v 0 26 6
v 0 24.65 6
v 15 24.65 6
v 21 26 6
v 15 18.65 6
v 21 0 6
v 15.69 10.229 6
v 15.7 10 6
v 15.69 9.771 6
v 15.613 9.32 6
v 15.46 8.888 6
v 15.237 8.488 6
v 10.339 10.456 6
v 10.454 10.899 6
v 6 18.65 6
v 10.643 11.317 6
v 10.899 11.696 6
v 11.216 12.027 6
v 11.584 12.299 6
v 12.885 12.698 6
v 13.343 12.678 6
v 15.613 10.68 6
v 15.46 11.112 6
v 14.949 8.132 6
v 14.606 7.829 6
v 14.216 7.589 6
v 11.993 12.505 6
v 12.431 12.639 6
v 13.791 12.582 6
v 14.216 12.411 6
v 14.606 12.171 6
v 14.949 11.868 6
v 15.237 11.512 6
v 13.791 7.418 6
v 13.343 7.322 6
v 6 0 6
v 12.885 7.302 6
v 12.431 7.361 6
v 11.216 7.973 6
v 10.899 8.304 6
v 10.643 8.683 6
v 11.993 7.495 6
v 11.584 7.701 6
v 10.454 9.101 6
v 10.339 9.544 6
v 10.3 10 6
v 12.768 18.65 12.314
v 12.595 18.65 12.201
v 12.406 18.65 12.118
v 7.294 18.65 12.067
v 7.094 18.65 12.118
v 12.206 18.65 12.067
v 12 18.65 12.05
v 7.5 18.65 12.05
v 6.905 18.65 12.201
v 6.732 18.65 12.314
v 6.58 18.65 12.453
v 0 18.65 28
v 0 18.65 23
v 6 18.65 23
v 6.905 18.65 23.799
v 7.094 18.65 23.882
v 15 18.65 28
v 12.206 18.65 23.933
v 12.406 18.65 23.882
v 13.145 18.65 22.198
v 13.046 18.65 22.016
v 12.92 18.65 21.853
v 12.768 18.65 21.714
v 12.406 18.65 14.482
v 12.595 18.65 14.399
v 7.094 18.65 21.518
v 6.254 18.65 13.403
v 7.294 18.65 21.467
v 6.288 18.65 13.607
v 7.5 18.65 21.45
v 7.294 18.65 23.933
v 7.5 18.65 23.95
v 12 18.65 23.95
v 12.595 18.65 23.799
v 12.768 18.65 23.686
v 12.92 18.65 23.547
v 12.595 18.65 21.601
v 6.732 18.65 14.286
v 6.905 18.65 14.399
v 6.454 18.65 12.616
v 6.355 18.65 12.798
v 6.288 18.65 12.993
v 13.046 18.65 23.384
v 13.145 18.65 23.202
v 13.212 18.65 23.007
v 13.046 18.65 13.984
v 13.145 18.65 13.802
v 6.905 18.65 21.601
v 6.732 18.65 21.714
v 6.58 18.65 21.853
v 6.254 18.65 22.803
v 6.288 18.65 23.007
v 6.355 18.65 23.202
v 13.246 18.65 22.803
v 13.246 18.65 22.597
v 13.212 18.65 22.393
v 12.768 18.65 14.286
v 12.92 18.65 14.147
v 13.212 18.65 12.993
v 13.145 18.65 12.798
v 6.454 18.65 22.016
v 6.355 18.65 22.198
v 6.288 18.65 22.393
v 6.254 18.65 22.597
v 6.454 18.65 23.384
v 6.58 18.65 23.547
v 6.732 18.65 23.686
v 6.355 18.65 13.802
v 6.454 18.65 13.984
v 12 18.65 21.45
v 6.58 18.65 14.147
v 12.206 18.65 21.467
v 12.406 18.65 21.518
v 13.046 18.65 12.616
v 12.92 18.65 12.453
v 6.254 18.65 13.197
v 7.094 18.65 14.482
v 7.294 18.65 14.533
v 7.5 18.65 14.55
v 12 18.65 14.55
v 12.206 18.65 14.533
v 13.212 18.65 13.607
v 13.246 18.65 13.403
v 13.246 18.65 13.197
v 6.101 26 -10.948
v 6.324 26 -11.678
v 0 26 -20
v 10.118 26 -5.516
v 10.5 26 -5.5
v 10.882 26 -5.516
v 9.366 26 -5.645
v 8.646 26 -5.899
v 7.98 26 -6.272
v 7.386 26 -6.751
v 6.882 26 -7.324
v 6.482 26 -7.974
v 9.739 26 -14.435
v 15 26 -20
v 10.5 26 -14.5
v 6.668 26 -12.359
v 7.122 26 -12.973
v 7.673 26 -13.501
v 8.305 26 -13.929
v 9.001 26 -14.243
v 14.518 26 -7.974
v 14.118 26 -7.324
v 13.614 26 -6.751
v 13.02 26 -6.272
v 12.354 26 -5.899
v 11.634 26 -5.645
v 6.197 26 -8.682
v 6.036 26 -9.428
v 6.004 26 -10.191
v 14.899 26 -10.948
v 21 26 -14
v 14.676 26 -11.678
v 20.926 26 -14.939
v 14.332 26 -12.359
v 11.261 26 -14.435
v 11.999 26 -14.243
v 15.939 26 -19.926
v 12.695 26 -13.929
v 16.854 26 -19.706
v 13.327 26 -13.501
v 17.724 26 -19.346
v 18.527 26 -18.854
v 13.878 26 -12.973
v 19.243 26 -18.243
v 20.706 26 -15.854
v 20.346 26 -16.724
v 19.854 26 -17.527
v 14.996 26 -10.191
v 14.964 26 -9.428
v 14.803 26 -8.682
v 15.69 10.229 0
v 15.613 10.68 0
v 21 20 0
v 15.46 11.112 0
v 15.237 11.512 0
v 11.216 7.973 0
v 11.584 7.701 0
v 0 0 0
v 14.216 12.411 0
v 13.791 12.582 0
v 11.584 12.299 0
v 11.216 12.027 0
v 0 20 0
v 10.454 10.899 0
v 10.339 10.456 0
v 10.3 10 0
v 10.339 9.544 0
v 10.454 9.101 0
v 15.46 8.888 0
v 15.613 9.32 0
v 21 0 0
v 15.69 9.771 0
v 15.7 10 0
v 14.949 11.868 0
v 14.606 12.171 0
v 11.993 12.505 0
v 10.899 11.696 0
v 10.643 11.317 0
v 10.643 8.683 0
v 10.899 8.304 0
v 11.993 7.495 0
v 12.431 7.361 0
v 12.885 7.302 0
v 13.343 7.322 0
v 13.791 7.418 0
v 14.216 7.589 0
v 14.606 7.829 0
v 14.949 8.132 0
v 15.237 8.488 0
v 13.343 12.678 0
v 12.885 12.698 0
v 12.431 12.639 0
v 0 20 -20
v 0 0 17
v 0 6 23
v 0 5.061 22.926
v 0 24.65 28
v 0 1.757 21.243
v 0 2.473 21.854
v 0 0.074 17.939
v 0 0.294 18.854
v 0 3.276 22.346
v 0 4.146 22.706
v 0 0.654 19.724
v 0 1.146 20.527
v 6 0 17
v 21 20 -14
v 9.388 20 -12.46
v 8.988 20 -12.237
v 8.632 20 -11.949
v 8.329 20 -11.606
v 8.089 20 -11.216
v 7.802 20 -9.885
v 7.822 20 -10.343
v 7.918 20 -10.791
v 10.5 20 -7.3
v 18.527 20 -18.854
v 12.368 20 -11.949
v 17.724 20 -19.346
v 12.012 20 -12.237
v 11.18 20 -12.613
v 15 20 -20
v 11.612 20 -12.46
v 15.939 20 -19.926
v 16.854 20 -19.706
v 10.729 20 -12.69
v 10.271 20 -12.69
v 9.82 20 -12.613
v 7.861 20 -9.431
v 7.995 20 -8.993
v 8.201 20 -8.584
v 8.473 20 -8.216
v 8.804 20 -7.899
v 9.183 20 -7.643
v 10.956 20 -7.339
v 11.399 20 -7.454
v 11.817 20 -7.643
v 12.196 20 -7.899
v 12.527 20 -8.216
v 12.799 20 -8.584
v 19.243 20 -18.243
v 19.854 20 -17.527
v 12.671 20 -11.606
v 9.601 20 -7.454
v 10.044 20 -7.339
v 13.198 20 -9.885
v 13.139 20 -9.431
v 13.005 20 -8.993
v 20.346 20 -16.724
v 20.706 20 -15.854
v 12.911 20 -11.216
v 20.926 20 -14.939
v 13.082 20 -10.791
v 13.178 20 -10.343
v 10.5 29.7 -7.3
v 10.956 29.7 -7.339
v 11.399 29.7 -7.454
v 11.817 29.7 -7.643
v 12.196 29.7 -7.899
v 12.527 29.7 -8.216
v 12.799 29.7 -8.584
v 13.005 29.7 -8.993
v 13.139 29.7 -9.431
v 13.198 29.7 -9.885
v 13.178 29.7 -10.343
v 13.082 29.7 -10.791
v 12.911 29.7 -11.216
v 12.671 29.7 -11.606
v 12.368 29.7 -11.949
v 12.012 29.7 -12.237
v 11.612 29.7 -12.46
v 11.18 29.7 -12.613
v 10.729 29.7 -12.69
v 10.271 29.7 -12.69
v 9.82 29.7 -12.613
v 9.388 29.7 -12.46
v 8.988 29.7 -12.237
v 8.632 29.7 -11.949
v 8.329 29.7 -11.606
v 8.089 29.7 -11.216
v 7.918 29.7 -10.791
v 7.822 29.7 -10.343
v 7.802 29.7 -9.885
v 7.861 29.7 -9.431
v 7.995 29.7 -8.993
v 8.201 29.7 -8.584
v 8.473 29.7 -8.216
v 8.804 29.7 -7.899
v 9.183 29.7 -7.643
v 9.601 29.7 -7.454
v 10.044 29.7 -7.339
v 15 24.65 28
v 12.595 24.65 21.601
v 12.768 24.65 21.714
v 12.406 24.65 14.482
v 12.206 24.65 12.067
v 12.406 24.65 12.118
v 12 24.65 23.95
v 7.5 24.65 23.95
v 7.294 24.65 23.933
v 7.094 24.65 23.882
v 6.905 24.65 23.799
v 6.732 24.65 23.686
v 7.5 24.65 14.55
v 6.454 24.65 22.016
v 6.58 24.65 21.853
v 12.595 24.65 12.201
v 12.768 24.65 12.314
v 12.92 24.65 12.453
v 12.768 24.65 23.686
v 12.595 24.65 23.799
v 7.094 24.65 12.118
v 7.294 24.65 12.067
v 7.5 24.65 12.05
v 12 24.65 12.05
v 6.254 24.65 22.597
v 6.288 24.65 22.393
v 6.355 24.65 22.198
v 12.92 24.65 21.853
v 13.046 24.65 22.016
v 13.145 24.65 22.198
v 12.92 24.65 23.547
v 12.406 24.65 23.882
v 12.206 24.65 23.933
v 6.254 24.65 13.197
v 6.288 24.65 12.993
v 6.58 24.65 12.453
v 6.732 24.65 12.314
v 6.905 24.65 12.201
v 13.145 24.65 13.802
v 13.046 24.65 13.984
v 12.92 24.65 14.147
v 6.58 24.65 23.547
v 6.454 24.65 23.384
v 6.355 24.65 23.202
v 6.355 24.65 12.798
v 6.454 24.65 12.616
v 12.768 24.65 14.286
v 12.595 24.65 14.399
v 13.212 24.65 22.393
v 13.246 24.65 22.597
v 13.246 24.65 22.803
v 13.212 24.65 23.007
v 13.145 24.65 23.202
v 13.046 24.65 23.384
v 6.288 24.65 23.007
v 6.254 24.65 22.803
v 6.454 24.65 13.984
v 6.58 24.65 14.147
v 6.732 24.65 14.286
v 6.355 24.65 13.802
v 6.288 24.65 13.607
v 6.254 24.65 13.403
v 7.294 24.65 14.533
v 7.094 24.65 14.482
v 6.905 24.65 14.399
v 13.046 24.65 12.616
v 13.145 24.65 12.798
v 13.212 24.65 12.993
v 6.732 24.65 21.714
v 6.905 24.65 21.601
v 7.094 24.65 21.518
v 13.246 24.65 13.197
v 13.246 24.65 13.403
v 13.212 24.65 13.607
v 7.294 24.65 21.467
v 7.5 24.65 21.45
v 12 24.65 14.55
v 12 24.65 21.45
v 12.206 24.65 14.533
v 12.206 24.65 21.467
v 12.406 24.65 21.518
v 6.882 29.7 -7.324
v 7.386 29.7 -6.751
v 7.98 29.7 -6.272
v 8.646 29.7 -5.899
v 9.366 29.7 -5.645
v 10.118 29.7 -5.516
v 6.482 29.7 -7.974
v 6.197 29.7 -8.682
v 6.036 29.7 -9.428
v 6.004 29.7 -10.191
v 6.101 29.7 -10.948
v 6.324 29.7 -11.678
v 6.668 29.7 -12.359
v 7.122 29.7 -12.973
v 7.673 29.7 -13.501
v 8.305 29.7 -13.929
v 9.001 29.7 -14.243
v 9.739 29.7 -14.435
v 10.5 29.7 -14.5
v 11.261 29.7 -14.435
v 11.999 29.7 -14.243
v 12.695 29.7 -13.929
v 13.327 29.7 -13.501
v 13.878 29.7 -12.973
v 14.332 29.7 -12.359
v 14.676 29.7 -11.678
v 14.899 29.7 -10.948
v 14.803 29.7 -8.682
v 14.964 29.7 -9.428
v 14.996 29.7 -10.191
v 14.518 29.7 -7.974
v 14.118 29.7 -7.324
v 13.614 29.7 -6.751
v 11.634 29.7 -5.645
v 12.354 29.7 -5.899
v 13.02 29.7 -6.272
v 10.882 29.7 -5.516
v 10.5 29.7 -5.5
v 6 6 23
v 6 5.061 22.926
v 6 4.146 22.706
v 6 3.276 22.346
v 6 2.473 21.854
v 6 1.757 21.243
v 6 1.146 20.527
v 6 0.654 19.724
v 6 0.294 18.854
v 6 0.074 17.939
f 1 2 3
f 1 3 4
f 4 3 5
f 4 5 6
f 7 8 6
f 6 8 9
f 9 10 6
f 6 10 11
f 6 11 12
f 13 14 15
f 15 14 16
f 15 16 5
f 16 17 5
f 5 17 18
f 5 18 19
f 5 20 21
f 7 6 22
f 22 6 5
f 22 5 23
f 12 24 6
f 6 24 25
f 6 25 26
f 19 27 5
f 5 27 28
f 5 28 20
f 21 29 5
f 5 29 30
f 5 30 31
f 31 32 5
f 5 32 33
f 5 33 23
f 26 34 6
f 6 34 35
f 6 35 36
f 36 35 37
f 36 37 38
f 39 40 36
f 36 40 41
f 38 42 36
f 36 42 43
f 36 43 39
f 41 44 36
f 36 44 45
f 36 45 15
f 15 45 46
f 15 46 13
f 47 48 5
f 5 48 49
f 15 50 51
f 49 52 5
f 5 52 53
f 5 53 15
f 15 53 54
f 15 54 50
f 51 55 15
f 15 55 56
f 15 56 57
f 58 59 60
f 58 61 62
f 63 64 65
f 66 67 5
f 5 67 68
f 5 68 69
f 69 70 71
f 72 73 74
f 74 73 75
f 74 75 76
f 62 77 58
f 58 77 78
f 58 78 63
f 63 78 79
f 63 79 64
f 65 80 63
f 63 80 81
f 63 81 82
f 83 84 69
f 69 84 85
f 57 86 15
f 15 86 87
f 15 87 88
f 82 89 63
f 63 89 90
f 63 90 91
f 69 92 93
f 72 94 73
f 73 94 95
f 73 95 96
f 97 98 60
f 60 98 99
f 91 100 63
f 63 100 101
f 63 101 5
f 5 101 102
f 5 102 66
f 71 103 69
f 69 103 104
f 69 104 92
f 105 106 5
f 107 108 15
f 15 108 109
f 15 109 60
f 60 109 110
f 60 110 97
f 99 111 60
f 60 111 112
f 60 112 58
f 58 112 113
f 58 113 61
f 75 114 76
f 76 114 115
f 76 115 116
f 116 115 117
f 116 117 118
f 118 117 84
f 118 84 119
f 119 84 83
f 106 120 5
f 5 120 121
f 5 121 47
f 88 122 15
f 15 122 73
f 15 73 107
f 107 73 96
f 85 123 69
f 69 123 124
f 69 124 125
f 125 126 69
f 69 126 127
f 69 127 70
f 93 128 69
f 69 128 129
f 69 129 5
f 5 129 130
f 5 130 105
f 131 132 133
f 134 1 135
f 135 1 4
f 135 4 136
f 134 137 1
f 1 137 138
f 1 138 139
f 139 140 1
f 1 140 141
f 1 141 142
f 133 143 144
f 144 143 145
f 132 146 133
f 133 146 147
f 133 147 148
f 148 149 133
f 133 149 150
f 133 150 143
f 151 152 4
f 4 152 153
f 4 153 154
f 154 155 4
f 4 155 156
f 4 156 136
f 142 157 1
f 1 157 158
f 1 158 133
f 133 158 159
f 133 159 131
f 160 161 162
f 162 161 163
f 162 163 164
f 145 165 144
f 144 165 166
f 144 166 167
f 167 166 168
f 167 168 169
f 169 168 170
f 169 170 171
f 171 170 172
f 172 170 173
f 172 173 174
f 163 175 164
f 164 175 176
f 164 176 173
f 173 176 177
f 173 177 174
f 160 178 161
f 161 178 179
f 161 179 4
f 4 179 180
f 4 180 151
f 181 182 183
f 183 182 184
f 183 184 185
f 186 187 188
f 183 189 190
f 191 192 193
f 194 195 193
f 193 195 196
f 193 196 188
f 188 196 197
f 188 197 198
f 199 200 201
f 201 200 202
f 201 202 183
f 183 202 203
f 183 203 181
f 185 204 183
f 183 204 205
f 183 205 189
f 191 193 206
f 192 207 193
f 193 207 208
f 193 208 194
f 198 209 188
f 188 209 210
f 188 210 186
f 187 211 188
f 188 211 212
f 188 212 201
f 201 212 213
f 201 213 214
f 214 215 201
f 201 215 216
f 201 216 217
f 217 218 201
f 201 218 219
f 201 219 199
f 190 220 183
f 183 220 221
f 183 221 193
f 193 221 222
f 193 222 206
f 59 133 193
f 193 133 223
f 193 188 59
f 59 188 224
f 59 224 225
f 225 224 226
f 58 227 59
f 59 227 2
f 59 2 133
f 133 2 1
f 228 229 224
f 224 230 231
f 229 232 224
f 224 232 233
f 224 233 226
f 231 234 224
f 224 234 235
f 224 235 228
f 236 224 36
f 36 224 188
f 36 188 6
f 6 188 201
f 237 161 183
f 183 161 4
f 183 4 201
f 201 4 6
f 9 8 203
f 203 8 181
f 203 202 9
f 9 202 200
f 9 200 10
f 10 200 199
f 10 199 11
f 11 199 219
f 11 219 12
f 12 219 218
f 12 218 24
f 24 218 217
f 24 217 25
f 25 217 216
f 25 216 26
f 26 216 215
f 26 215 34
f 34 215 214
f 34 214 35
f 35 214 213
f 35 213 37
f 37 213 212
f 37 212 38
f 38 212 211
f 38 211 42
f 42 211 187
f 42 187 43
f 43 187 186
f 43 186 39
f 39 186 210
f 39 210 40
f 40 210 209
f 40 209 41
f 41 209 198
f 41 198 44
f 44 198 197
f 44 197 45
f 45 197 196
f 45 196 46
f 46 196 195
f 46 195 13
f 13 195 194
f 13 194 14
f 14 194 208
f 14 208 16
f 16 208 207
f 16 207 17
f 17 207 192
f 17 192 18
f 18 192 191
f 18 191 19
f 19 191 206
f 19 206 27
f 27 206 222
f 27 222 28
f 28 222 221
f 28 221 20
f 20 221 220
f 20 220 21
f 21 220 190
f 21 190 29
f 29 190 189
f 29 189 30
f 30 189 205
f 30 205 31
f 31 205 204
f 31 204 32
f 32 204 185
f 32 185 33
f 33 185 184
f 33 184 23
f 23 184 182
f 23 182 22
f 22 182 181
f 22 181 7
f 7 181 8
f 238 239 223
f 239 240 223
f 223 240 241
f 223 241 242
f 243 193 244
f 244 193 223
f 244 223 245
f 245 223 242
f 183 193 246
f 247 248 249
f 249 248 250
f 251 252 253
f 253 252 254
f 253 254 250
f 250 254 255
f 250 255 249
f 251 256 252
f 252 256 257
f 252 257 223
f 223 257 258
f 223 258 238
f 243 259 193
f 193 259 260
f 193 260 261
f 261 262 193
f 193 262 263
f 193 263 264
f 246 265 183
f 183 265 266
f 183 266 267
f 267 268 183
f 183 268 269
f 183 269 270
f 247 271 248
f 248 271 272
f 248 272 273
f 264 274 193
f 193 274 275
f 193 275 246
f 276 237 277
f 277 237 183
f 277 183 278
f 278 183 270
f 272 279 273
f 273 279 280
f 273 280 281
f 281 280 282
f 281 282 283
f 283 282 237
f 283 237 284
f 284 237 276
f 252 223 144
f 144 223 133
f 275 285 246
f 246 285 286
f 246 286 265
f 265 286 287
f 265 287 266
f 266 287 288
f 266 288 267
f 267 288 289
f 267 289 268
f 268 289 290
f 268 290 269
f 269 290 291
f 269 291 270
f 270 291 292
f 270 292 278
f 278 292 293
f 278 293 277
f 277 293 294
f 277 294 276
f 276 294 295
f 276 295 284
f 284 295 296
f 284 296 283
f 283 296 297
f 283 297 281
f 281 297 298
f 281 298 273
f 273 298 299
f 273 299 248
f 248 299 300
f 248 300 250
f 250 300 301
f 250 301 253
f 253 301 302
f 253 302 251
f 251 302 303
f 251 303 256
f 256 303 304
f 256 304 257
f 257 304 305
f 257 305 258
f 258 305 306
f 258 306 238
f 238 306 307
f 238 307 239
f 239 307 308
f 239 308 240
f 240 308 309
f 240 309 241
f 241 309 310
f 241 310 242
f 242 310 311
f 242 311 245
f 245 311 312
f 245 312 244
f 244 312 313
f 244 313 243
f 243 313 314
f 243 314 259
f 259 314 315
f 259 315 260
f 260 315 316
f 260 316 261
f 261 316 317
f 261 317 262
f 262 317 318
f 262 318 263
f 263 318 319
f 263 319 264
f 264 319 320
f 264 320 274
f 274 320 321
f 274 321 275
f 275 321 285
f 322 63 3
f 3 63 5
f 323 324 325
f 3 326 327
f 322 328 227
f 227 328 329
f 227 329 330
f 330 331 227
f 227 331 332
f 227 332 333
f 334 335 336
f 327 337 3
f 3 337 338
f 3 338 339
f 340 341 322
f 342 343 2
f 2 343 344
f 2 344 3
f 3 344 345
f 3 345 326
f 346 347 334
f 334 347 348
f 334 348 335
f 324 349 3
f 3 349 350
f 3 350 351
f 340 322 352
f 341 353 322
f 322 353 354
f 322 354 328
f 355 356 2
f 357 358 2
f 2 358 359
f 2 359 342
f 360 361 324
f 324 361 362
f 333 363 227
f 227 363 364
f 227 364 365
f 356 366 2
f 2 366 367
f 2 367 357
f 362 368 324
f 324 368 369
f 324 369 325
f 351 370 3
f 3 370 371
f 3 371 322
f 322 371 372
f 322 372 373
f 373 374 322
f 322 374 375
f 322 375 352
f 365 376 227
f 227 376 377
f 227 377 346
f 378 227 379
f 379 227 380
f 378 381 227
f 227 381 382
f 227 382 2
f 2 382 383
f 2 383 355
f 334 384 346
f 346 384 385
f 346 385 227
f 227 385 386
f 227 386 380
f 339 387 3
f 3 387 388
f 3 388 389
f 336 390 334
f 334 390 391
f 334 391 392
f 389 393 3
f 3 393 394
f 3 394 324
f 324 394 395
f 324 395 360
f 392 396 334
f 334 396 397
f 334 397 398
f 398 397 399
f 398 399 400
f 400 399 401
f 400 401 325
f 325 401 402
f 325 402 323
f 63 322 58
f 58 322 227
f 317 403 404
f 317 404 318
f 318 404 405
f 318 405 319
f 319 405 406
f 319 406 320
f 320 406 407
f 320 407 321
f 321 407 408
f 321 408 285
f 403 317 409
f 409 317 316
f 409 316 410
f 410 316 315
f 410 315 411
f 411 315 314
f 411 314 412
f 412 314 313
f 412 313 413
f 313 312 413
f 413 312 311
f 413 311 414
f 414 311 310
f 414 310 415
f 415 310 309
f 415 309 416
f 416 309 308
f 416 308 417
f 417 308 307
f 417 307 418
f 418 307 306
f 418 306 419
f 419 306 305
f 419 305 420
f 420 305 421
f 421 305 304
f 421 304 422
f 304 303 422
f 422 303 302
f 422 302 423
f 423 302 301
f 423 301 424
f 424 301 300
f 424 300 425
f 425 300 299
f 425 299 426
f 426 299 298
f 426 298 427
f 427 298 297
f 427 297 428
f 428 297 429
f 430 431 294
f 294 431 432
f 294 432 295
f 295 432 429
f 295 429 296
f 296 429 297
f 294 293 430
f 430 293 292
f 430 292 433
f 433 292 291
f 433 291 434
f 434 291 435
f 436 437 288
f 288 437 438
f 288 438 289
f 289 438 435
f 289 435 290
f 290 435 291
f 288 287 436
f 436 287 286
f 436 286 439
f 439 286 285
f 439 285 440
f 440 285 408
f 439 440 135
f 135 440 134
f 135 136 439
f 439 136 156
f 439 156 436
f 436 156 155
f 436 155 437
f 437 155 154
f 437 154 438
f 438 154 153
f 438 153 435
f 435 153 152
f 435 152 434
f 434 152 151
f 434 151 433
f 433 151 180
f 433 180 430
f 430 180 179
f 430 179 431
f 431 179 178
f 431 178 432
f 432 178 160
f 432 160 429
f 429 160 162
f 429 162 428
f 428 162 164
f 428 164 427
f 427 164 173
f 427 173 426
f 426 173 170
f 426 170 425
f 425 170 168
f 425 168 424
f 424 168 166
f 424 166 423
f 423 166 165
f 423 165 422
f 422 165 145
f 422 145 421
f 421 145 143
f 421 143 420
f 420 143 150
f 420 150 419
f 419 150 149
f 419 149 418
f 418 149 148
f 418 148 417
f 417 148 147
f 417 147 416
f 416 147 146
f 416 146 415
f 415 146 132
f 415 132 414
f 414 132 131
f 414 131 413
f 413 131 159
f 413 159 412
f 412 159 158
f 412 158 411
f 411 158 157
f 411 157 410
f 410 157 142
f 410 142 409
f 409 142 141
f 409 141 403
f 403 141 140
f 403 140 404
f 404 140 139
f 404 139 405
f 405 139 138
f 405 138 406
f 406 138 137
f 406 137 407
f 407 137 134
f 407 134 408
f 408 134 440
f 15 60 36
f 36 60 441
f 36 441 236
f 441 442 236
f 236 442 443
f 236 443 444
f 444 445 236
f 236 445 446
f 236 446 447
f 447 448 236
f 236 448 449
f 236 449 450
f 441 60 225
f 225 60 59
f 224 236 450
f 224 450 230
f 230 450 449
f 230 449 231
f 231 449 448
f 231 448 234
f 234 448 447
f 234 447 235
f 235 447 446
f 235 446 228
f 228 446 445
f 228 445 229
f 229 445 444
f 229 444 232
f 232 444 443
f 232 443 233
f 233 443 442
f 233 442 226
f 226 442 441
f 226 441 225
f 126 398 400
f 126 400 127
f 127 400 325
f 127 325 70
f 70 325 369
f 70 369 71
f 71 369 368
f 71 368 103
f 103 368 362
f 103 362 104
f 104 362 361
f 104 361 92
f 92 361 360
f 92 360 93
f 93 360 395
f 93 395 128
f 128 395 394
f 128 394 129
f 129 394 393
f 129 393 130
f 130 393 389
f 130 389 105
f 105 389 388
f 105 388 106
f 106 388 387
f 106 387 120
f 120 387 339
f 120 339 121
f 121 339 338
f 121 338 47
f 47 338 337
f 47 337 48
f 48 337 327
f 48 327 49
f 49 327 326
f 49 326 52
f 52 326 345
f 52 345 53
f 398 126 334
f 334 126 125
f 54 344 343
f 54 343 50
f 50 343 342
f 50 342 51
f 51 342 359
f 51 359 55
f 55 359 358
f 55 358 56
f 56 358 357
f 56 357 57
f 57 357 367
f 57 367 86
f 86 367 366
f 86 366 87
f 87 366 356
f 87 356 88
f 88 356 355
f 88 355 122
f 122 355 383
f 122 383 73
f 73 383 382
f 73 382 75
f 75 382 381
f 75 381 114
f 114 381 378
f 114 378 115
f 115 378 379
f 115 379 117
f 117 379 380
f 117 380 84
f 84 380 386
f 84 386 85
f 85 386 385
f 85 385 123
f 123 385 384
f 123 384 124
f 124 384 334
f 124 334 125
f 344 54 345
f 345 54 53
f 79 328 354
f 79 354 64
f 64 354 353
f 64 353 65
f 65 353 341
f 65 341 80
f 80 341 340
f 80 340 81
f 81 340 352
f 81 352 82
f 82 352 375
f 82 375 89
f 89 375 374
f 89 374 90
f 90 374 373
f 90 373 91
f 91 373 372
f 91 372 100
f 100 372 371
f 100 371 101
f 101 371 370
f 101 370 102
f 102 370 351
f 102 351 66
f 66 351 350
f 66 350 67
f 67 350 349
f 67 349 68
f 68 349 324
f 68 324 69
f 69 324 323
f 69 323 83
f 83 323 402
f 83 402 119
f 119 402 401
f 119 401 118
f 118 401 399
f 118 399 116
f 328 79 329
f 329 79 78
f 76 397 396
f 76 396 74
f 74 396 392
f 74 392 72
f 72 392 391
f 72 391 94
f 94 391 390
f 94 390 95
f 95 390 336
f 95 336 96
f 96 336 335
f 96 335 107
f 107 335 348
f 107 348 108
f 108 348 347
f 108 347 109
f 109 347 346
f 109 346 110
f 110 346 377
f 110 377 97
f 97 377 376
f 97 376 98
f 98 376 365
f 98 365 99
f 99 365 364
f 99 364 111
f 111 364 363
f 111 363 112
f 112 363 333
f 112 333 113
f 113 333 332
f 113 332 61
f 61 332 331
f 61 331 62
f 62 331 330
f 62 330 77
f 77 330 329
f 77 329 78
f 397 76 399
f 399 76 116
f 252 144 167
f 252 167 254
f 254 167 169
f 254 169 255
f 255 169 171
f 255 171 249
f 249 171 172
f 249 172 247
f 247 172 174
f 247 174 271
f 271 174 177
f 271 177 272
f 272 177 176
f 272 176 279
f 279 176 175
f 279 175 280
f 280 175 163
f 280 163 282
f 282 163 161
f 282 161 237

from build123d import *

# Parameters (mm, degrees)
SZKIC1_W                    = 21
SZKIC1_H                    = 6
SZKIC1_H_2                  = 20
SZKIC1_R                    = 2.7
DODANIE_WYCI_GNI_CIE1_DEPTH = 6
SZKIC2_W                    = 21
SZKIC2_H                    = 6
DODANIE_WYCI_GNI_CIE2_DEPTH = 20
SZKIC3_R                    = 2.7
WYTNIJ_WYCI_GNI_CIE1_DEPTH  = 9
SZKIC4_W                    = 15
SZKIC4_H                    = 6
DODANIE_WYCI_GNI_CIE3_DEPTH = 22
SZKIC8_R                    = 4.5
SZKIC8_R_2                  = 2.7
DODANIE_WYCI_GNI_CIE6_DEPTH = 3.7
SZKIC9_W                    = 6
SZKIC9_H                    = 18.65
DODANIE_WYCI_GNI_CIE7_DEPTH = 17
ZAOKR_GLENIE3_R             = 6
WYTNIJ_WYCI_GNI_CIE2_DEPTH  = 22
ZAOKR_GLENIE4_R             = 6
SZKIC6_R                    = 4.5
SZKIC6_R_2                  = 2.7
DODANIE_WYCI_GNI_CIE5_DEPTH = 3.7


with BuildPart() as part:
    # Szkic1 → Dodanie-wyciągnięcie1 (new body)
    with BuildSketch(Plane.XY):
        with Locations((10.5, 23)):
            Rectangle(SZKIC1_W, SZKIC1_H)
        with Locations((10.5, 10)):
            Rectangle(SZKIC1_W, SZKIC1_H_2)
        with Locations((13, 10)):
            Circle(SZKIC1_R, mode=Mode.SUBTRACT)
    extrude(amount=DODANIE_WYCI_GNI_CIE1_DEPTH)

    # Szkic2 → Dodanie-wyciągnięcie2 (add)
    with BuildSketch(Plane(origin=(0, 0, 0), x_dir=(-1, 0, 0), z_dir=(0, 0, -1))):
        with Locations((-10.5, 23)):
            Rectangle(SZKIC2_W, SZKIC2_H)
    extrude(amount=DODANIE_WYCI_GNI_CIE2_DEPTH)

    # Szkic3 → Wytnij-wyciągnięcie1 (cut)
    with BuildSketch(Plane(origin=(0, 26, 0), x_dir=(1, 0, 0), z_dir=(0, 1, 0))):
        with Locations((10.5, 10)):
            Circle(SZKIC3_R)
    extrude(amount=-WYTNIJ_WYCI_GNI_CIE1_DEPTH, mode=Mode.SUBTRACT)

    # Szkic4 → Dodanie-wyciągnięcie3 (add)
    with BuildSketch(Plane.XY.offset(6)):
        with Locations((7.5, 21.65)):
            Rectangle(SZKIC4_W, SZKIC4_H)
    extrude(amount=DODANIE_WYCI_GNI_CIE3_DEPTH)

    # Szkic8 → Dodanie-wyciągnięcie6 (add)
    with BuildSketch(Plane(origin=(0, 26, 0), x_dir=(1, 0, 0), z_dir=(0, 1, 0))):
        with Locations((10.5, 10)):
            Circle(SZKIC8_R)
        with Locations((10.5, 10)):
            Circle(SZKIC8_R_2, mode=Mode.SUBTRACT)
    extrude(amount=DODANIE_WYCI_GNI_CIE6_DEPTH)

    # Szkic9 → Dodanie-wyciągnięcie7 (add)
    with BuildSketch(Plane.XY.offset(6)):
        with Locations((3, 9.325)):
            Rectangle(SZKIC9_W, SZKIC9_H)
    extrude(amount=DODANIE_WYCI_GNI_CIE7_DEPTH)

    # Zaokrąglenie3
    zaokr_glenie3_edges = [part.edges().sort_by_distance(p)[0] for p in [
        (3, 0, 23),
    ]]
    fillet(zaokr_glenie3_edges, radius=ZAOKR_GLENIE3_R)

    # Szkic12 → Wytnij-wyciągnięcie2 (cut)
    with BuildSketch(Plane(origin=(0, 24.65, 0), x_dir=(1, 0, 0), z_dir=(0, 1, 0))):
        with BuildLine():
            Line((12, -14.55), (7.5, -14.55))
            ThreePointArc((7.5, -14.55), (6.25, -13.3), (7.5, -12.05))
            Line((7.5, -12.05), (12, -12.05))
            ThreePointArc((12, -12.05), (13.25, -13.3), (12, -14.55))
        make_face()
        with BuildLine():
            Line((12, -21.45), (7.5, -21.45))
            ThreePointArc((7.5, -21.45), (6.25, -22.7), (7.5, -23.95))
            Line((7.5, -23.95), (12, -23.95))
            ThreePointArc((12, -23.95), (13.25, -22.7), (12, -21.45))
        make_face()
    extrude(amount=-WYTNIJ_WYCI_GNI_CIE2_DEPTH, mode=Mode.SUBTRACT)

    # Zaokrąglenie4
    zaokr_glenie4_edges = [part.edges().sort_by_distance(p)[0] for p in [
        (21, 23, -20),
    ]]
    fillet(zaokr_glenie4_edges, radius=ZAOKR_GLENIE4_R)

    # Szkic6 → Dodanie-wyciągnięcie5 (add)
    with BuildSketch(Plane(origin=(0, 26, 0), x_dir=(1, 0, 0), z_dir=(0, 1, 0))):
        with Locations((10.5, 10)):
            Circle(SZKIC6_R)
        with Locations((10.5, 10)):
            Circle(SZKIC6_R_2, mode=Mode.SUBTRACT)
    extrude(amount=DODANIE_WYCI_GNI_CIE5_DEPTH)


solid = part.part
